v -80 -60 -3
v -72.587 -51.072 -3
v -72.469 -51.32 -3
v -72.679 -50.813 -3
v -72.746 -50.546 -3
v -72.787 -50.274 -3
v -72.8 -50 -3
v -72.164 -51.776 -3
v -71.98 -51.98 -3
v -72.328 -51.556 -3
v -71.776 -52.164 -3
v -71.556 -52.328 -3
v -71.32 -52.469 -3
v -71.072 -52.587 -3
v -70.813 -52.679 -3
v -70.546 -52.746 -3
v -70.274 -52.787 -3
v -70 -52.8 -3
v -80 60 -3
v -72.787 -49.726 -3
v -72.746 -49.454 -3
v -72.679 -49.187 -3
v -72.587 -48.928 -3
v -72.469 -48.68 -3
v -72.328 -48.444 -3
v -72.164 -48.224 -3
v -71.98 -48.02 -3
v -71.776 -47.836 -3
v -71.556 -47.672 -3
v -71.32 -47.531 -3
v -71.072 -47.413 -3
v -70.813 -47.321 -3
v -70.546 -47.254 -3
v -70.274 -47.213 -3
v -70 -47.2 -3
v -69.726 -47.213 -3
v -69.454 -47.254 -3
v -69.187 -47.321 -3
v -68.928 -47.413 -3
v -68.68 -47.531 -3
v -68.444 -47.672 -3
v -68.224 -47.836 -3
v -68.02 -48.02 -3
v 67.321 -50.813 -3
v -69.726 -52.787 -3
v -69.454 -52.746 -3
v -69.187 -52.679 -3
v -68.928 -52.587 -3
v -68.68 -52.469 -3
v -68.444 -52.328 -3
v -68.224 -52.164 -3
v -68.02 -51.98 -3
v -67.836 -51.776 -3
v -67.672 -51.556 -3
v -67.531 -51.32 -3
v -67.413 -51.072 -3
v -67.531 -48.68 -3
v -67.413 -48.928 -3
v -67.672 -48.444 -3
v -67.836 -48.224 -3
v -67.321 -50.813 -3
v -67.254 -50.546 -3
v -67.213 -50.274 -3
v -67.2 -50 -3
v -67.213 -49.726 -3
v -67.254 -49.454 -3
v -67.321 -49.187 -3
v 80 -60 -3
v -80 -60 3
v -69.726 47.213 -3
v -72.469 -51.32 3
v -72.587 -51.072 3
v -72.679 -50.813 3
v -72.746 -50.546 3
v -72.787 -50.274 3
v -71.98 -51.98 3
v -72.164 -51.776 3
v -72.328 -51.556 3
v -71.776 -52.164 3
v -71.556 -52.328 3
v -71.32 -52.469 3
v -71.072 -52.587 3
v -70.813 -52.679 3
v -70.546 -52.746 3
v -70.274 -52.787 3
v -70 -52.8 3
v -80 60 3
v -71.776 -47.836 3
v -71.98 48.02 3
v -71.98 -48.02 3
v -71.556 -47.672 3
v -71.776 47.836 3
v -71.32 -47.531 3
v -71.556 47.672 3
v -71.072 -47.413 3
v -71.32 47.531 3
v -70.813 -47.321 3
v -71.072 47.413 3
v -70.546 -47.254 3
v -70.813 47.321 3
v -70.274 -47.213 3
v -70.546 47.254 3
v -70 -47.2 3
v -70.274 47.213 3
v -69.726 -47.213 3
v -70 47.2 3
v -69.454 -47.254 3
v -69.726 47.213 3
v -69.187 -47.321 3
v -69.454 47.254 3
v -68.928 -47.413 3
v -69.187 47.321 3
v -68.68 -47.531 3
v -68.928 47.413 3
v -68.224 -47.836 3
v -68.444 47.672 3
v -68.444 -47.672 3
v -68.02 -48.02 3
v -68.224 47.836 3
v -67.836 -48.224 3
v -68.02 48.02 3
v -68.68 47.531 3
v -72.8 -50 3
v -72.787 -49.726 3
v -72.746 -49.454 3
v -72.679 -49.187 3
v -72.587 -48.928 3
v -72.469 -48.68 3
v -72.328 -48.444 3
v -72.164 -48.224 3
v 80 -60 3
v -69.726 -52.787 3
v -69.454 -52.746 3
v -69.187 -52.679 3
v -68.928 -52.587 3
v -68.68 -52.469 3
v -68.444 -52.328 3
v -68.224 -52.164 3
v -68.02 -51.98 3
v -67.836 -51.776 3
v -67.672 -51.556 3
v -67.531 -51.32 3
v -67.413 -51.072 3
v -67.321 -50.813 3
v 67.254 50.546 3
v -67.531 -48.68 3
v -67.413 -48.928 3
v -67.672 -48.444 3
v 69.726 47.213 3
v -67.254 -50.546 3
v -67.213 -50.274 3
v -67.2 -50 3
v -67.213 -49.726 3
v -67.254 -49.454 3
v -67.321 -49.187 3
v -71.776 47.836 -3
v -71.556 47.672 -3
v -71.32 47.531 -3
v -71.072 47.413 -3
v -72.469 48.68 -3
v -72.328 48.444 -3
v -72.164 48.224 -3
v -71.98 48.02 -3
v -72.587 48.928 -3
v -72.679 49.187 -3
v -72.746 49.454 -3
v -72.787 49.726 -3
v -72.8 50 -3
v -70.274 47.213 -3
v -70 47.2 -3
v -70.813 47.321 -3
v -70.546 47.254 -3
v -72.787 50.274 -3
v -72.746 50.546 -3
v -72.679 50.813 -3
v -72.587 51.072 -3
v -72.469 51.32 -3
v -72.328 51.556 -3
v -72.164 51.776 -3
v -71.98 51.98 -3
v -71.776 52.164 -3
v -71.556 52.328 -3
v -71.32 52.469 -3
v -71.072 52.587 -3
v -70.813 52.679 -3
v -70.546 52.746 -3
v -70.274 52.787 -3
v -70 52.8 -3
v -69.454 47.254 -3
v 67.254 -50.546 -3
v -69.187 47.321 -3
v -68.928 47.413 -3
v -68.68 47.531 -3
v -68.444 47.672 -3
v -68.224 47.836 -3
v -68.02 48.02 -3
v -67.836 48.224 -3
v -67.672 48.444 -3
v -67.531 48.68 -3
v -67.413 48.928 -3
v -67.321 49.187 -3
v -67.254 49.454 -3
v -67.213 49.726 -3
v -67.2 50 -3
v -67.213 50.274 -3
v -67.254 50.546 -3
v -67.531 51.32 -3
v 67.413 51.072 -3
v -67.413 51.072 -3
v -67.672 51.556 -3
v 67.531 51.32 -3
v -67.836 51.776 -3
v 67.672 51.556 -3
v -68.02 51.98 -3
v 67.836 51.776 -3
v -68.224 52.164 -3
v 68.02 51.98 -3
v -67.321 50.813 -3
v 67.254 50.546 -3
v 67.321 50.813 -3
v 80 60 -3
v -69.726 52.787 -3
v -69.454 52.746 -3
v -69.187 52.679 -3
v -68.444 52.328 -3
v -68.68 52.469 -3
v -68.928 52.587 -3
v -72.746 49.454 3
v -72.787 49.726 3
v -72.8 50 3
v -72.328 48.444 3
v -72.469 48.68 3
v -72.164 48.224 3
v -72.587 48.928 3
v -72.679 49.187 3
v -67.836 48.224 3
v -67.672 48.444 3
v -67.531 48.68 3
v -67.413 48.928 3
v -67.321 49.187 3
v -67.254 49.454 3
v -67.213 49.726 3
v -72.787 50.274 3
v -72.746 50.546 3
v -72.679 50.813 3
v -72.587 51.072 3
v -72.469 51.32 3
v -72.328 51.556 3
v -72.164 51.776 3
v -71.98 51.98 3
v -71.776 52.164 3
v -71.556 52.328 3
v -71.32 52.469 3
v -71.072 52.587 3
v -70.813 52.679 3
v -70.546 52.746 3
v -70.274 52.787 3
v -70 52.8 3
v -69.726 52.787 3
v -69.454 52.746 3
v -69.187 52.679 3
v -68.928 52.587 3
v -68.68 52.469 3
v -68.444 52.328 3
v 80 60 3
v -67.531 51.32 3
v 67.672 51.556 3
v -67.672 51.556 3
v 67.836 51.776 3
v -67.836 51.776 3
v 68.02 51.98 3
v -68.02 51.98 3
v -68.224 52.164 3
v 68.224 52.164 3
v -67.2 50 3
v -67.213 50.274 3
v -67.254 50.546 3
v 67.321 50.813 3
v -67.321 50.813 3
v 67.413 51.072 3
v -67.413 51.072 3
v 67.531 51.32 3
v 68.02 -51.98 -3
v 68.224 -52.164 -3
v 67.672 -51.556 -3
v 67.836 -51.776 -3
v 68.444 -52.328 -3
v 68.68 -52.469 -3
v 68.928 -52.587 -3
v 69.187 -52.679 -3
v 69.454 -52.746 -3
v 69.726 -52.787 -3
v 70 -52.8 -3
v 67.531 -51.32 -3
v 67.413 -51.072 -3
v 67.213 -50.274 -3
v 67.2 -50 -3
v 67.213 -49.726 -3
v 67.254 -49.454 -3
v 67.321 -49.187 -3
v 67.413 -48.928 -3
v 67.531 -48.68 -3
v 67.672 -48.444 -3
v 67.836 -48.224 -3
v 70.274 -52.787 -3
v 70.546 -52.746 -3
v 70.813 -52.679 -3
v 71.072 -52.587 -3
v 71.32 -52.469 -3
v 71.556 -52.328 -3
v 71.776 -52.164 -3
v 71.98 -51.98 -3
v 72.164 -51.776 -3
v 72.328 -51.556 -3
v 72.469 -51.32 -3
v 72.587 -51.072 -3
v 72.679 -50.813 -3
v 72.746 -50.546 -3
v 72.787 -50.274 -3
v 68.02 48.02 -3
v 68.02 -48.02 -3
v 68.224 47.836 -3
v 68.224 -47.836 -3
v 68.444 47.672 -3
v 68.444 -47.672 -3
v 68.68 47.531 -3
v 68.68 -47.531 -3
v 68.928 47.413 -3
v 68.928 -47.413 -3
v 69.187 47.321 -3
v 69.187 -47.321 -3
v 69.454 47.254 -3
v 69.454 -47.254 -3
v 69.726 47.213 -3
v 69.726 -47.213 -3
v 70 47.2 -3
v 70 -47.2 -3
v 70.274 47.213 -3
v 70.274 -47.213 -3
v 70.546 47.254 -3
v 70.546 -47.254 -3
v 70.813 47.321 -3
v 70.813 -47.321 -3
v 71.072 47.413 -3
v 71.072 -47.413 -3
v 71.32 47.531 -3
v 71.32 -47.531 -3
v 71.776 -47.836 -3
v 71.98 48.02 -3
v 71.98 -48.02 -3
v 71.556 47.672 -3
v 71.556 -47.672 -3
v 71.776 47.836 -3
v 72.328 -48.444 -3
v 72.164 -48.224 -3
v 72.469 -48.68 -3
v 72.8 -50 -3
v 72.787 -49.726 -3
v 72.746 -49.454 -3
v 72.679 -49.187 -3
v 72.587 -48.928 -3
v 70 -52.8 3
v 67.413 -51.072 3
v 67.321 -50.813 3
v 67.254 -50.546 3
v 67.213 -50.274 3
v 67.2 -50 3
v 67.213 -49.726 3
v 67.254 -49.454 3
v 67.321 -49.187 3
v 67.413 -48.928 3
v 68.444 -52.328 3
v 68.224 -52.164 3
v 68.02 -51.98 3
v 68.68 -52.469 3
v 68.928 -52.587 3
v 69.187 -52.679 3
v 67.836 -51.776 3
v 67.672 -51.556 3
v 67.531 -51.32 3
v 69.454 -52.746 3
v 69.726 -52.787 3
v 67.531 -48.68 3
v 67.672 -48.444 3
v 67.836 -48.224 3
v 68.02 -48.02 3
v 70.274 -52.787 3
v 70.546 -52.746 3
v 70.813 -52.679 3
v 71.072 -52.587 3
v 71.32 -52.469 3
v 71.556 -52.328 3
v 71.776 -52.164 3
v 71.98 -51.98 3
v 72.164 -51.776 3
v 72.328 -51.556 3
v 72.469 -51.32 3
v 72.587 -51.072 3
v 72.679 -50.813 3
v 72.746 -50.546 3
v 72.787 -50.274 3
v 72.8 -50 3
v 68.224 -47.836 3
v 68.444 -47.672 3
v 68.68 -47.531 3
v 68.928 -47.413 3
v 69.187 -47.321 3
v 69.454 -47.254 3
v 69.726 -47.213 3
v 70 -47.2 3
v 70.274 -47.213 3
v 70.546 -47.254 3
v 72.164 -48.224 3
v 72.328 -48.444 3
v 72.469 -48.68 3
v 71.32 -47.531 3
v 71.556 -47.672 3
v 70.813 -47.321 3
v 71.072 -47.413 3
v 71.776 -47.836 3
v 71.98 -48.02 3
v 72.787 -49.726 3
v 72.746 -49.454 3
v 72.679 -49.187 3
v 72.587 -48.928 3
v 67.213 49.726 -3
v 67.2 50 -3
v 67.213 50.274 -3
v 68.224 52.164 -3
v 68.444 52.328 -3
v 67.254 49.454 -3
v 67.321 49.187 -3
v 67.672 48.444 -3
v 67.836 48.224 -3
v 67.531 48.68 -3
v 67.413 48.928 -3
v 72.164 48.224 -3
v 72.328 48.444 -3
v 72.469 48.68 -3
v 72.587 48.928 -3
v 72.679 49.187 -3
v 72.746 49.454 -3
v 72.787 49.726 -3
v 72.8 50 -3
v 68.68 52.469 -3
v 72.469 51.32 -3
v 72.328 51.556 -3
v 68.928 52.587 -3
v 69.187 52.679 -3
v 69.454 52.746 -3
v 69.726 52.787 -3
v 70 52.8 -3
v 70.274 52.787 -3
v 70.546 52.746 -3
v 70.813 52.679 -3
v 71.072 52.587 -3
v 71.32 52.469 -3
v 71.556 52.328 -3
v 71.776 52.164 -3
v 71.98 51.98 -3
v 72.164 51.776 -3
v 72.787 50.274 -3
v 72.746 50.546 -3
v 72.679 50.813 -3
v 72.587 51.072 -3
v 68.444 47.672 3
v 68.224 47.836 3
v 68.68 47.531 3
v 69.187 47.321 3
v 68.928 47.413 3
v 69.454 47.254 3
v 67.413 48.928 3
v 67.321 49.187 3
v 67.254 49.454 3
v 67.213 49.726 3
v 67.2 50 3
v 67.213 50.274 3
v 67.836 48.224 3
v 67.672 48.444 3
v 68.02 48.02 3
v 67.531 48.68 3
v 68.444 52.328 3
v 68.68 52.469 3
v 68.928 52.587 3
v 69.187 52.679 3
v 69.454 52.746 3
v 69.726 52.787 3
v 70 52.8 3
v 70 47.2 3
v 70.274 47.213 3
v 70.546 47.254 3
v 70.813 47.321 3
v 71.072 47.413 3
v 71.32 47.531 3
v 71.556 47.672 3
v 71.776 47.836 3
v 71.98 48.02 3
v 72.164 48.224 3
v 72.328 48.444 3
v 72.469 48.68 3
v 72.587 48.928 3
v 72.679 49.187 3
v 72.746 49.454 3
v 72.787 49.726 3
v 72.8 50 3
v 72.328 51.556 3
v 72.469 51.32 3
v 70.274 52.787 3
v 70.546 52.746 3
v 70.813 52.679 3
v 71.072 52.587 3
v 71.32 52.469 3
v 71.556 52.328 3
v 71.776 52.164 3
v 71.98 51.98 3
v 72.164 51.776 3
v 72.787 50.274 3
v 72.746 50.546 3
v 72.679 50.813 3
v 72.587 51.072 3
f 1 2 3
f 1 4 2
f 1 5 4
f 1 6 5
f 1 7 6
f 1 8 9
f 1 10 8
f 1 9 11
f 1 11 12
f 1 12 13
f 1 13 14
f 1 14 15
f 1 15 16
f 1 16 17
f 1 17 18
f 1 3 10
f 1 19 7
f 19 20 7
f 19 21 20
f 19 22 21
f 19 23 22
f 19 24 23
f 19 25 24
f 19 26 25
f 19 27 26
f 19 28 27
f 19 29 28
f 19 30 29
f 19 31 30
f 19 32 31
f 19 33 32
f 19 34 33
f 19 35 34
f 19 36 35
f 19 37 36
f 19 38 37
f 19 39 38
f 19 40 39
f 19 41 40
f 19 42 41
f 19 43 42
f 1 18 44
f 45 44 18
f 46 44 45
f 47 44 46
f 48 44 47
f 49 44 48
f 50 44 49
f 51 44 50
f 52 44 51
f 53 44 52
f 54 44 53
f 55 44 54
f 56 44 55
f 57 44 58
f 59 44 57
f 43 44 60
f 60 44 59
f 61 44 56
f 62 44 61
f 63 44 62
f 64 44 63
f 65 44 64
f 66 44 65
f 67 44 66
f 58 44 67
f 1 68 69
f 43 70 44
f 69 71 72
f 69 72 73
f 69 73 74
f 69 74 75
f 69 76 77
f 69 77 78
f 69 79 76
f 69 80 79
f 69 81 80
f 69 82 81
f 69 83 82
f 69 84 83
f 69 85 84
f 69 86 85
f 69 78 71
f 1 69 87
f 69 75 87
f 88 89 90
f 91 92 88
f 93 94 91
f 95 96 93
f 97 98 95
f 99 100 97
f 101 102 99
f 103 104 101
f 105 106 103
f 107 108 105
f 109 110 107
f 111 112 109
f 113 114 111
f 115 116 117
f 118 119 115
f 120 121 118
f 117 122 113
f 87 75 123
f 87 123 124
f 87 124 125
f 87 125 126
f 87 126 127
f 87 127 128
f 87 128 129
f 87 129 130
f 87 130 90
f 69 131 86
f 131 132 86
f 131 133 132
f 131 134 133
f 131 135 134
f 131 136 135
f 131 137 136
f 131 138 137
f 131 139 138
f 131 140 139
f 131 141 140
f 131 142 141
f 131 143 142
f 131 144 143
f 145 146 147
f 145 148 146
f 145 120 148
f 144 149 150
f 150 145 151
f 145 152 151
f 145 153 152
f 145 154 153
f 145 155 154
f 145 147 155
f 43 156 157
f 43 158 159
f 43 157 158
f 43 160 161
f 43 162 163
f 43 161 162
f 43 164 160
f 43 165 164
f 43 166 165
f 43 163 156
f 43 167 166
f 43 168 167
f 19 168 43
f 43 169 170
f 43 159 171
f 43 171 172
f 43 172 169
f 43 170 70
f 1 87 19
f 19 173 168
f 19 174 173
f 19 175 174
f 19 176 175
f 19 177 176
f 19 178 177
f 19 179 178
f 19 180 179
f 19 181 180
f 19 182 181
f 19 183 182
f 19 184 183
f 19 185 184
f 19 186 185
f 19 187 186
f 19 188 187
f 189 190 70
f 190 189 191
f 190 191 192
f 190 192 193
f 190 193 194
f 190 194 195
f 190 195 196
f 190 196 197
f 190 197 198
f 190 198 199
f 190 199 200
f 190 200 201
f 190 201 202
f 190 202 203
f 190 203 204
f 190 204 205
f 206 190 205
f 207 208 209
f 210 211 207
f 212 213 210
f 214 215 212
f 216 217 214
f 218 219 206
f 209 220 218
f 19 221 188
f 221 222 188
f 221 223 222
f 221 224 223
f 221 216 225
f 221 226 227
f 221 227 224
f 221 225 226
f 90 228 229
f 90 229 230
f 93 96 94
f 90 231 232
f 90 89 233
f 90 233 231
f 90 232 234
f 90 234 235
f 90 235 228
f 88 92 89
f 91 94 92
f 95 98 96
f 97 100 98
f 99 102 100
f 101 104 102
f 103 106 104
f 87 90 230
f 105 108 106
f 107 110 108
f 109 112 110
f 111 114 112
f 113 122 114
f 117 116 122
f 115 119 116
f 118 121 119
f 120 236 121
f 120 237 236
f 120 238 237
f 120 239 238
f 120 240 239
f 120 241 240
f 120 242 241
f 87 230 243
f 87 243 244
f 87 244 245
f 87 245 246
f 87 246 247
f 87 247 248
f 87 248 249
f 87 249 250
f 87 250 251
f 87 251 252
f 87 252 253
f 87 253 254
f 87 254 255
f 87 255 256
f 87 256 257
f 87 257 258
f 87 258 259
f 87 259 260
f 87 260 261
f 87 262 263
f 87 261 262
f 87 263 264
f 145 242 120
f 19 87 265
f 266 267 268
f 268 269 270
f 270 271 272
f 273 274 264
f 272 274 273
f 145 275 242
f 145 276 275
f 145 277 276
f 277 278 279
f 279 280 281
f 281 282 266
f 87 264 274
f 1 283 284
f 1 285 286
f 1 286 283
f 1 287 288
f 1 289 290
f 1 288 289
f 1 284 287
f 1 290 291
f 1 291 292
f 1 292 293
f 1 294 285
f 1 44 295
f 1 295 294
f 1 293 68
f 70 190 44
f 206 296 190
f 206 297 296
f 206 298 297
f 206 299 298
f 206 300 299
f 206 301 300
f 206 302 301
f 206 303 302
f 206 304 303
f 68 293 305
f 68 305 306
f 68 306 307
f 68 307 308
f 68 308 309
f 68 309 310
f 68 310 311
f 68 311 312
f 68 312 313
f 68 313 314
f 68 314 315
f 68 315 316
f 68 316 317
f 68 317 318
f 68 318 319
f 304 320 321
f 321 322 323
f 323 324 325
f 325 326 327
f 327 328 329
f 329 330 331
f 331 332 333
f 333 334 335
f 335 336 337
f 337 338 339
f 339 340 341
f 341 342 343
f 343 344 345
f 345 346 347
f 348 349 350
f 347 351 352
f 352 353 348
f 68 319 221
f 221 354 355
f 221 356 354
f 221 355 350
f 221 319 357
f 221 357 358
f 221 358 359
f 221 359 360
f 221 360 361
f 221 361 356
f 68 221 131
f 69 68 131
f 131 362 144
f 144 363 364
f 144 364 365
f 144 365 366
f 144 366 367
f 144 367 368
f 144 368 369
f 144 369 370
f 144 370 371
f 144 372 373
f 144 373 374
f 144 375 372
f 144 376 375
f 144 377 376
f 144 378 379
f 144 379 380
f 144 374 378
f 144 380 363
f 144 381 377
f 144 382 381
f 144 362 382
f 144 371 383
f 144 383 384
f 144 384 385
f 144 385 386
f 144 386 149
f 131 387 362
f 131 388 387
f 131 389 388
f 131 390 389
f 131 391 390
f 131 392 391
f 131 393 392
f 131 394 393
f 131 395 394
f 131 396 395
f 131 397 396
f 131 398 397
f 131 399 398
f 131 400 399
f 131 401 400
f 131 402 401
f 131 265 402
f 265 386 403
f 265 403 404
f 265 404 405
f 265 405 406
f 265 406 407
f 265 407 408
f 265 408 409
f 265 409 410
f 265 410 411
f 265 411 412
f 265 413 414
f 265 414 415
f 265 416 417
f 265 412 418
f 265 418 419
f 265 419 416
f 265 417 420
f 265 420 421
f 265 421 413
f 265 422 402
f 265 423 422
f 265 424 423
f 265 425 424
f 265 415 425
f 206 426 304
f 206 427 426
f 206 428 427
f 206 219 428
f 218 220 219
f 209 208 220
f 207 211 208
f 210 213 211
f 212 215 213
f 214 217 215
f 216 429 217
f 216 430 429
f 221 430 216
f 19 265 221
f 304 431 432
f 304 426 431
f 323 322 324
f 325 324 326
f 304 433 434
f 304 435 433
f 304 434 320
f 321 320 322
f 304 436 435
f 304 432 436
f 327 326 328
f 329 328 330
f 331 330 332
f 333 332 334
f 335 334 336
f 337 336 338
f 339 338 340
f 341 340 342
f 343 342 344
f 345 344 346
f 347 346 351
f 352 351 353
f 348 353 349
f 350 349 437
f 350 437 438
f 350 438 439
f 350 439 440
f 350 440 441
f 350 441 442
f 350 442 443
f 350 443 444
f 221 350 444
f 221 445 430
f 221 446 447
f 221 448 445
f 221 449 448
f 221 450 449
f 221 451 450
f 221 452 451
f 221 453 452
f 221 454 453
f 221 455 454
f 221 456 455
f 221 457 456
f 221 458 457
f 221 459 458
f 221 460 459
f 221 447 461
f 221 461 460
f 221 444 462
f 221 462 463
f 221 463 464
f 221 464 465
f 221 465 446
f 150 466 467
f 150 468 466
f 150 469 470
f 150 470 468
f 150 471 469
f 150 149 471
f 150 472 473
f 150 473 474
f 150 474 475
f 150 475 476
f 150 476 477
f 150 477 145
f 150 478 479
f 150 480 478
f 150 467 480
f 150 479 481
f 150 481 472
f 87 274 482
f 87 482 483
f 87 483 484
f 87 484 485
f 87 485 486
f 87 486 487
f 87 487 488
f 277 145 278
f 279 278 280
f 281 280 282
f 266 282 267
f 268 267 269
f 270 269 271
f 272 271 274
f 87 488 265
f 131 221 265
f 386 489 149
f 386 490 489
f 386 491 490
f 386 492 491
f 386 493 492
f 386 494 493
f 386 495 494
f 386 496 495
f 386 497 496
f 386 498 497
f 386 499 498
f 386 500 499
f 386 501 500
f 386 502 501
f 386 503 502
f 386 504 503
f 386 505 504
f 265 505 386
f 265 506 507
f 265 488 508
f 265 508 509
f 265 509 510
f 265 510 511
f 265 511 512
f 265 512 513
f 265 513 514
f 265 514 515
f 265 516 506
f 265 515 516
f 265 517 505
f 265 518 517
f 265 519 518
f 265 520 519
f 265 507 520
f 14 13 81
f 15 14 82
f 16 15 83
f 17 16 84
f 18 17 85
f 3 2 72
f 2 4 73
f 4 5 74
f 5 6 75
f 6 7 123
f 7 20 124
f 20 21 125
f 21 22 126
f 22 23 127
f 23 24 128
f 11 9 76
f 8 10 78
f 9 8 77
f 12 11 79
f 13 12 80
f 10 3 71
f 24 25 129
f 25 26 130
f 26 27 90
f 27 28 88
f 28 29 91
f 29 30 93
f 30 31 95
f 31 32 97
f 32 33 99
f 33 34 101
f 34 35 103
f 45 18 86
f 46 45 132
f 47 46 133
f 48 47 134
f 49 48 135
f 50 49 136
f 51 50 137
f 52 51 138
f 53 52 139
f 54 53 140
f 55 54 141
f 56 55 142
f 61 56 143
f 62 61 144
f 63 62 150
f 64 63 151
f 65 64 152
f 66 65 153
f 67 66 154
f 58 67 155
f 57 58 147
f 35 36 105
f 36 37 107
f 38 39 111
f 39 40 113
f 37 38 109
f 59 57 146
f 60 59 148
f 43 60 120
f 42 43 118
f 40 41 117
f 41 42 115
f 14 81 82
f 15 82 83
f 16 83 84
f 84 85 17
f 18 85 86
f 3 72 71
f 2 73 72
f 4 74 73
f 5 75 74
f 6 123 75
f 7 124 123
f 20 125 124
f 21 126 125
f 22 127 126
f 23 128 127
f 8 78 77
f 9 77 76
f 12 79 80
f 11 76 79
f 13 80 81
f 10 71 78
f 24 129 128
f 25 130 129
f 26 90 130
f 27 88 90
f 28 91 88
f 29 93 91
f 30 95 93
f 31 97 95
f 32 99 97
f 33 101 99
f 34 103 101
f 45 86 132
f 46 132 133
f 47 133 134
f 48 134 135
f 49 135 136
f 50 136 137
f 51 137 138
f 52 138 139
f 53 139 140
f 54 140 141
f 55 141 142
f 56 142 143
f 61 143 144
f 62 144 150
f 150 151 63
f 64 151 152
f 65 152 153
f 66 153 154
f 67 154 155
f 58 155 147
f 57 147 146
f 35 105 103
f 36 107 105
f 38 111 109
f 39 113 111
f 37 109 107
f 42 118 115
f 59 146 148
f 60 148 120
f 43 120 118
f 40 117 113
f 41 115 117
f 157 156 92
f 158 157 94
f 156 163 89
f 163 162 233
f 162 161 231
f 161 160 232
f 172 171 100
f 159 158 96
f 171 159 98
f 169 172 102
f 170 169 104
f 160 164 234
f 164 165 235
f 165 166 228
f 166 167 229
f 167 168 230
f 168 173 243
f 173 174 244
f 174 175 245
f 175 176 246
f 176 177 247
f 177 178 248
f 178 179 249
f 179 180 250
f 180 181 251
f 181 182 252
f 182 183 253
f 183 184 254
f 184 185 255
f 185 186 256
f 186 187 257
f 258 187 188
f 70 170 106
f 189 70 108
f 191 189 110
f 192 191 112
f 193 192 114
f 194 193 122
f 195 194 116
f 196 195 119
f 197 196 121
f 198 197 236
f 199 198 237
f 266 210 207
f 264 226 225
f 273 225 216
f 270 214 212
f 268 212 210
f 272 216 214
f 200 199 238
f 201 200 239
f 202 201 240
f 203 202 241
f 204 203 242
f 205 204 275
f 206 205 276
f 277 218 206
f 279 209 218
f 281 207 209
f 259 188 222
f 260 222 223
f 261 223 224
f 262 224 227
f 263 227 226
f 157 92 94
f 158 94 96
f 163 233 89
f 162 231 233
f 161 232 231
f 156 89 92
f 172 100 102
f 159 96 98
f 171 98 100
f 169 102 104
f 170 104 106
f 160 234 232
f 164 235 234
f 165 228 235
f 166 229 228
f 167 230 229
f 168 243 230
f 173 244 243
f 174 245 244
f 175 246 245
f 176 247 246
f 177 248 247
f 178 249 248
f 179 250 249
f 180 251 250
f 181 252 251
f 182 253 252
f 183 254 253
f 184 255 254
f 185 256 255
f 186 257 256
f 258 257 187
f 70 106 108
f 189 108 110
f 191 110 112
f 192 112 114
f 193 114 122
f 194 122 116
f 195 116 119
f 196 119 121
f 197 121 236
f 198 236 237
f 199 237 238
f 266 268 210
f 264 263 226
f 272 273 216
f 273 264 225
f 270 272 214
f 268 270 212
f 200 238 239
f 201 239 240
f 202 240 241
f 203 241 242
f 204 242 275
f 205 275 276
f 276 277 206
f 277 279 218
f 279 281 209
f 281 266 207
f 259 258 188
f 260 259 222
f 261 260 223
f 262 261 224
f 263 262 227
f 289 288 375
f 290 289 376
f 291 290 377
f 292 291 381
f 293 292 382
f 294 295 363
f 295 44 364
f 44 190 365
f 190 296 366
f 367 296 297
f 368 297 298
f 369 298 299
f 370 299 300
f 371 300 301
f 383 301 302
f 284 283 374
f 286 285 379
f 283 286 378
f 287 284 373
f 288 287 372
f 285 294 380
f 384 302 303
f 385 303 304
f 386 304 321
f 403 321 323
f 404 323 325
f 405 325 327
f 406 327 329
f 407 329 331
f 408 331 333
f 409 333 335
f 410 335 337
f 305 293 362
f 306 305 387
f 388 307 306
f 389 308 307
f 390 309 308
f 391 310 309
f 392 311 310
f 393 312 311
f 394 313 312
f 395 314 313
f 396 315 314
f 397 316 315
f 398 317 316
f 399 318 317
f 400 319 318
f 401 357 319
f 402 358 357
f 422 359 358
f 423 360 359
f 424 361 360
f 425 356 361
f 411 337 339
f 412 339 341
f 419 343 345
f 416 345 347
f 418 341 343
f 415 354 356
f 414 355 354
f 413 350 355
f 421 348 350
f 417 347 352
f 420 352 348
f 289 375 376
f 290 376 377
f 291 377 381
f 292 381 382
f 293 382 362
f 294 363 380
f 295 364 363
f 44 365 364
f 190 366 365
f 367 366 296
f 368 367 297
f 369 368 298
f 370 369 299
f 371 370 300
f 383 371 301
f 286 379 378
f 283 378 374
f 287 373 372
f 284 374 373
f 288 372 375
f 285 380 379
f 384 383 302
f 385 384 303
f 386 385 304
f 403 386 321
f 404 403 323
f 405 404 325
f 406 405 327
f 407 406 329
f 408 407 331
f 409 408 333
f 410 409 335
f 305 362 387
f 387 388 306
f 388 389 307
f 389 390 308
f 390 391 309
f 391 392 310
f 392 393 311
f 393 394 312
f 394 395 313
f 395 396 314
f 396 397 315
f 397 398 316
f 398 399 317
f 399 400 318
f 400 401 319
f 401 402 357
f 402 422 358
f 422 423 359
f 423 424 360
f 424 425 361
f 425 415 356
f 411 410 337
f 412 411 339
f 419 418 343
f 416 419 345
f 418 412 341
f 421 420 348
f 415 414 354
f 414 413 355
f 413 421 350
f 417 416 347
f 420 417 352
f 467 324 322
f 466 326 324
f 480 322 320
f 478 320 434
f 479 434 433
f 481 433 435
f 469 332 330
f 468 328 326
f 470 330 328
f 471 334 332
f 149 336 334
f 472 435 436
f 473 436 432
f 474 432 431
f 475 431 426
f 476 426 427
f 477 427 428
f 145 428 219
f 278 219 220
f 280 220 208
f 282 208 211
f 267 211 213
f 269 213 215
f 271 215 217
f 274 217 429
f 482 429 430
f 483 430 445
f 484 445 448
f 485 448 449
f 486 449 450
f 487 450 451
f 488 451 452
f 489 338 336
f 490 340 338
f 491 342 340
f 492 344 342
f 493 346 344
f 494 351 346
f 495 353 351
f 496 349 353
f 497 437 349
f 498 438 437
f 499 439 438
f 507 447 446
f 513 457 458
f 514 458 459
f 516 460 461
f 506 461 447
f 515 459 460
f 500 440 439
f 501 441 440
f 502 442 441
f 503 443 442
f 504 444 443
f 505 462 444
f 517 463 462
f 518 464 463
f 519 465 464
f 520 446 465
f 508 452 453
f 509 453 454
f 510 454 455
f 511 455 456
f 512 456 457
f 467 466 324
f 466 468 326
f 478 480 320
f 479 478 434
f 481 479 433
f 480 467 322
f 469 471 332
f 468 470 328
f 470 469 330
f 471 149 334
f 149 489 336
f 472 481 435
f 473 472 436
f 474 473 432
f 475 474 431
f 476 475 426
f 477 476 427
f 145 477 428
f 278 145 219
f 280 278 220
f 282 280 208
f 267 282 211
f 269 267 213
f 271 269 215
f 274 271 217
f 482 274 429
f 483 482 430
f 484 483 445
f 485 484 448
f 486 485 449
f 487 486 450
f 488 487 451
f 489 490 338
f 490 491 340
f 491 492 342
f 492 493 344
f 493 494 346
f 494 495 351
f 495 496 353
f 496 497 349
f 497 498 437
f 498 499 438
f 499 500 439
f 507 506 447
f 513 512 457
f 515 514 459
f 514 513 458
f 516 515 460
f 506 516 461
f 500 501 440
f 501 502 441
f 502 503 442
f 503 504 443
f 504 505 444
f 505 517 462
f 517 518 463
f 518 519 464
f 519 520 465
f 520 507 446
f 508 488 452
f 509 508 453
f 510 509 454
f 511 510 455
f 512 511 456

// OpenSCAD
$fn = 64;

difference() {
  cube([160, 120, 6], center = true);
  for (x = [-70, 70], y = [-50, 50]) {
    translate([x, y, 0]) cylinder(h = 12, r = 2.8, center = true);
  }
}
